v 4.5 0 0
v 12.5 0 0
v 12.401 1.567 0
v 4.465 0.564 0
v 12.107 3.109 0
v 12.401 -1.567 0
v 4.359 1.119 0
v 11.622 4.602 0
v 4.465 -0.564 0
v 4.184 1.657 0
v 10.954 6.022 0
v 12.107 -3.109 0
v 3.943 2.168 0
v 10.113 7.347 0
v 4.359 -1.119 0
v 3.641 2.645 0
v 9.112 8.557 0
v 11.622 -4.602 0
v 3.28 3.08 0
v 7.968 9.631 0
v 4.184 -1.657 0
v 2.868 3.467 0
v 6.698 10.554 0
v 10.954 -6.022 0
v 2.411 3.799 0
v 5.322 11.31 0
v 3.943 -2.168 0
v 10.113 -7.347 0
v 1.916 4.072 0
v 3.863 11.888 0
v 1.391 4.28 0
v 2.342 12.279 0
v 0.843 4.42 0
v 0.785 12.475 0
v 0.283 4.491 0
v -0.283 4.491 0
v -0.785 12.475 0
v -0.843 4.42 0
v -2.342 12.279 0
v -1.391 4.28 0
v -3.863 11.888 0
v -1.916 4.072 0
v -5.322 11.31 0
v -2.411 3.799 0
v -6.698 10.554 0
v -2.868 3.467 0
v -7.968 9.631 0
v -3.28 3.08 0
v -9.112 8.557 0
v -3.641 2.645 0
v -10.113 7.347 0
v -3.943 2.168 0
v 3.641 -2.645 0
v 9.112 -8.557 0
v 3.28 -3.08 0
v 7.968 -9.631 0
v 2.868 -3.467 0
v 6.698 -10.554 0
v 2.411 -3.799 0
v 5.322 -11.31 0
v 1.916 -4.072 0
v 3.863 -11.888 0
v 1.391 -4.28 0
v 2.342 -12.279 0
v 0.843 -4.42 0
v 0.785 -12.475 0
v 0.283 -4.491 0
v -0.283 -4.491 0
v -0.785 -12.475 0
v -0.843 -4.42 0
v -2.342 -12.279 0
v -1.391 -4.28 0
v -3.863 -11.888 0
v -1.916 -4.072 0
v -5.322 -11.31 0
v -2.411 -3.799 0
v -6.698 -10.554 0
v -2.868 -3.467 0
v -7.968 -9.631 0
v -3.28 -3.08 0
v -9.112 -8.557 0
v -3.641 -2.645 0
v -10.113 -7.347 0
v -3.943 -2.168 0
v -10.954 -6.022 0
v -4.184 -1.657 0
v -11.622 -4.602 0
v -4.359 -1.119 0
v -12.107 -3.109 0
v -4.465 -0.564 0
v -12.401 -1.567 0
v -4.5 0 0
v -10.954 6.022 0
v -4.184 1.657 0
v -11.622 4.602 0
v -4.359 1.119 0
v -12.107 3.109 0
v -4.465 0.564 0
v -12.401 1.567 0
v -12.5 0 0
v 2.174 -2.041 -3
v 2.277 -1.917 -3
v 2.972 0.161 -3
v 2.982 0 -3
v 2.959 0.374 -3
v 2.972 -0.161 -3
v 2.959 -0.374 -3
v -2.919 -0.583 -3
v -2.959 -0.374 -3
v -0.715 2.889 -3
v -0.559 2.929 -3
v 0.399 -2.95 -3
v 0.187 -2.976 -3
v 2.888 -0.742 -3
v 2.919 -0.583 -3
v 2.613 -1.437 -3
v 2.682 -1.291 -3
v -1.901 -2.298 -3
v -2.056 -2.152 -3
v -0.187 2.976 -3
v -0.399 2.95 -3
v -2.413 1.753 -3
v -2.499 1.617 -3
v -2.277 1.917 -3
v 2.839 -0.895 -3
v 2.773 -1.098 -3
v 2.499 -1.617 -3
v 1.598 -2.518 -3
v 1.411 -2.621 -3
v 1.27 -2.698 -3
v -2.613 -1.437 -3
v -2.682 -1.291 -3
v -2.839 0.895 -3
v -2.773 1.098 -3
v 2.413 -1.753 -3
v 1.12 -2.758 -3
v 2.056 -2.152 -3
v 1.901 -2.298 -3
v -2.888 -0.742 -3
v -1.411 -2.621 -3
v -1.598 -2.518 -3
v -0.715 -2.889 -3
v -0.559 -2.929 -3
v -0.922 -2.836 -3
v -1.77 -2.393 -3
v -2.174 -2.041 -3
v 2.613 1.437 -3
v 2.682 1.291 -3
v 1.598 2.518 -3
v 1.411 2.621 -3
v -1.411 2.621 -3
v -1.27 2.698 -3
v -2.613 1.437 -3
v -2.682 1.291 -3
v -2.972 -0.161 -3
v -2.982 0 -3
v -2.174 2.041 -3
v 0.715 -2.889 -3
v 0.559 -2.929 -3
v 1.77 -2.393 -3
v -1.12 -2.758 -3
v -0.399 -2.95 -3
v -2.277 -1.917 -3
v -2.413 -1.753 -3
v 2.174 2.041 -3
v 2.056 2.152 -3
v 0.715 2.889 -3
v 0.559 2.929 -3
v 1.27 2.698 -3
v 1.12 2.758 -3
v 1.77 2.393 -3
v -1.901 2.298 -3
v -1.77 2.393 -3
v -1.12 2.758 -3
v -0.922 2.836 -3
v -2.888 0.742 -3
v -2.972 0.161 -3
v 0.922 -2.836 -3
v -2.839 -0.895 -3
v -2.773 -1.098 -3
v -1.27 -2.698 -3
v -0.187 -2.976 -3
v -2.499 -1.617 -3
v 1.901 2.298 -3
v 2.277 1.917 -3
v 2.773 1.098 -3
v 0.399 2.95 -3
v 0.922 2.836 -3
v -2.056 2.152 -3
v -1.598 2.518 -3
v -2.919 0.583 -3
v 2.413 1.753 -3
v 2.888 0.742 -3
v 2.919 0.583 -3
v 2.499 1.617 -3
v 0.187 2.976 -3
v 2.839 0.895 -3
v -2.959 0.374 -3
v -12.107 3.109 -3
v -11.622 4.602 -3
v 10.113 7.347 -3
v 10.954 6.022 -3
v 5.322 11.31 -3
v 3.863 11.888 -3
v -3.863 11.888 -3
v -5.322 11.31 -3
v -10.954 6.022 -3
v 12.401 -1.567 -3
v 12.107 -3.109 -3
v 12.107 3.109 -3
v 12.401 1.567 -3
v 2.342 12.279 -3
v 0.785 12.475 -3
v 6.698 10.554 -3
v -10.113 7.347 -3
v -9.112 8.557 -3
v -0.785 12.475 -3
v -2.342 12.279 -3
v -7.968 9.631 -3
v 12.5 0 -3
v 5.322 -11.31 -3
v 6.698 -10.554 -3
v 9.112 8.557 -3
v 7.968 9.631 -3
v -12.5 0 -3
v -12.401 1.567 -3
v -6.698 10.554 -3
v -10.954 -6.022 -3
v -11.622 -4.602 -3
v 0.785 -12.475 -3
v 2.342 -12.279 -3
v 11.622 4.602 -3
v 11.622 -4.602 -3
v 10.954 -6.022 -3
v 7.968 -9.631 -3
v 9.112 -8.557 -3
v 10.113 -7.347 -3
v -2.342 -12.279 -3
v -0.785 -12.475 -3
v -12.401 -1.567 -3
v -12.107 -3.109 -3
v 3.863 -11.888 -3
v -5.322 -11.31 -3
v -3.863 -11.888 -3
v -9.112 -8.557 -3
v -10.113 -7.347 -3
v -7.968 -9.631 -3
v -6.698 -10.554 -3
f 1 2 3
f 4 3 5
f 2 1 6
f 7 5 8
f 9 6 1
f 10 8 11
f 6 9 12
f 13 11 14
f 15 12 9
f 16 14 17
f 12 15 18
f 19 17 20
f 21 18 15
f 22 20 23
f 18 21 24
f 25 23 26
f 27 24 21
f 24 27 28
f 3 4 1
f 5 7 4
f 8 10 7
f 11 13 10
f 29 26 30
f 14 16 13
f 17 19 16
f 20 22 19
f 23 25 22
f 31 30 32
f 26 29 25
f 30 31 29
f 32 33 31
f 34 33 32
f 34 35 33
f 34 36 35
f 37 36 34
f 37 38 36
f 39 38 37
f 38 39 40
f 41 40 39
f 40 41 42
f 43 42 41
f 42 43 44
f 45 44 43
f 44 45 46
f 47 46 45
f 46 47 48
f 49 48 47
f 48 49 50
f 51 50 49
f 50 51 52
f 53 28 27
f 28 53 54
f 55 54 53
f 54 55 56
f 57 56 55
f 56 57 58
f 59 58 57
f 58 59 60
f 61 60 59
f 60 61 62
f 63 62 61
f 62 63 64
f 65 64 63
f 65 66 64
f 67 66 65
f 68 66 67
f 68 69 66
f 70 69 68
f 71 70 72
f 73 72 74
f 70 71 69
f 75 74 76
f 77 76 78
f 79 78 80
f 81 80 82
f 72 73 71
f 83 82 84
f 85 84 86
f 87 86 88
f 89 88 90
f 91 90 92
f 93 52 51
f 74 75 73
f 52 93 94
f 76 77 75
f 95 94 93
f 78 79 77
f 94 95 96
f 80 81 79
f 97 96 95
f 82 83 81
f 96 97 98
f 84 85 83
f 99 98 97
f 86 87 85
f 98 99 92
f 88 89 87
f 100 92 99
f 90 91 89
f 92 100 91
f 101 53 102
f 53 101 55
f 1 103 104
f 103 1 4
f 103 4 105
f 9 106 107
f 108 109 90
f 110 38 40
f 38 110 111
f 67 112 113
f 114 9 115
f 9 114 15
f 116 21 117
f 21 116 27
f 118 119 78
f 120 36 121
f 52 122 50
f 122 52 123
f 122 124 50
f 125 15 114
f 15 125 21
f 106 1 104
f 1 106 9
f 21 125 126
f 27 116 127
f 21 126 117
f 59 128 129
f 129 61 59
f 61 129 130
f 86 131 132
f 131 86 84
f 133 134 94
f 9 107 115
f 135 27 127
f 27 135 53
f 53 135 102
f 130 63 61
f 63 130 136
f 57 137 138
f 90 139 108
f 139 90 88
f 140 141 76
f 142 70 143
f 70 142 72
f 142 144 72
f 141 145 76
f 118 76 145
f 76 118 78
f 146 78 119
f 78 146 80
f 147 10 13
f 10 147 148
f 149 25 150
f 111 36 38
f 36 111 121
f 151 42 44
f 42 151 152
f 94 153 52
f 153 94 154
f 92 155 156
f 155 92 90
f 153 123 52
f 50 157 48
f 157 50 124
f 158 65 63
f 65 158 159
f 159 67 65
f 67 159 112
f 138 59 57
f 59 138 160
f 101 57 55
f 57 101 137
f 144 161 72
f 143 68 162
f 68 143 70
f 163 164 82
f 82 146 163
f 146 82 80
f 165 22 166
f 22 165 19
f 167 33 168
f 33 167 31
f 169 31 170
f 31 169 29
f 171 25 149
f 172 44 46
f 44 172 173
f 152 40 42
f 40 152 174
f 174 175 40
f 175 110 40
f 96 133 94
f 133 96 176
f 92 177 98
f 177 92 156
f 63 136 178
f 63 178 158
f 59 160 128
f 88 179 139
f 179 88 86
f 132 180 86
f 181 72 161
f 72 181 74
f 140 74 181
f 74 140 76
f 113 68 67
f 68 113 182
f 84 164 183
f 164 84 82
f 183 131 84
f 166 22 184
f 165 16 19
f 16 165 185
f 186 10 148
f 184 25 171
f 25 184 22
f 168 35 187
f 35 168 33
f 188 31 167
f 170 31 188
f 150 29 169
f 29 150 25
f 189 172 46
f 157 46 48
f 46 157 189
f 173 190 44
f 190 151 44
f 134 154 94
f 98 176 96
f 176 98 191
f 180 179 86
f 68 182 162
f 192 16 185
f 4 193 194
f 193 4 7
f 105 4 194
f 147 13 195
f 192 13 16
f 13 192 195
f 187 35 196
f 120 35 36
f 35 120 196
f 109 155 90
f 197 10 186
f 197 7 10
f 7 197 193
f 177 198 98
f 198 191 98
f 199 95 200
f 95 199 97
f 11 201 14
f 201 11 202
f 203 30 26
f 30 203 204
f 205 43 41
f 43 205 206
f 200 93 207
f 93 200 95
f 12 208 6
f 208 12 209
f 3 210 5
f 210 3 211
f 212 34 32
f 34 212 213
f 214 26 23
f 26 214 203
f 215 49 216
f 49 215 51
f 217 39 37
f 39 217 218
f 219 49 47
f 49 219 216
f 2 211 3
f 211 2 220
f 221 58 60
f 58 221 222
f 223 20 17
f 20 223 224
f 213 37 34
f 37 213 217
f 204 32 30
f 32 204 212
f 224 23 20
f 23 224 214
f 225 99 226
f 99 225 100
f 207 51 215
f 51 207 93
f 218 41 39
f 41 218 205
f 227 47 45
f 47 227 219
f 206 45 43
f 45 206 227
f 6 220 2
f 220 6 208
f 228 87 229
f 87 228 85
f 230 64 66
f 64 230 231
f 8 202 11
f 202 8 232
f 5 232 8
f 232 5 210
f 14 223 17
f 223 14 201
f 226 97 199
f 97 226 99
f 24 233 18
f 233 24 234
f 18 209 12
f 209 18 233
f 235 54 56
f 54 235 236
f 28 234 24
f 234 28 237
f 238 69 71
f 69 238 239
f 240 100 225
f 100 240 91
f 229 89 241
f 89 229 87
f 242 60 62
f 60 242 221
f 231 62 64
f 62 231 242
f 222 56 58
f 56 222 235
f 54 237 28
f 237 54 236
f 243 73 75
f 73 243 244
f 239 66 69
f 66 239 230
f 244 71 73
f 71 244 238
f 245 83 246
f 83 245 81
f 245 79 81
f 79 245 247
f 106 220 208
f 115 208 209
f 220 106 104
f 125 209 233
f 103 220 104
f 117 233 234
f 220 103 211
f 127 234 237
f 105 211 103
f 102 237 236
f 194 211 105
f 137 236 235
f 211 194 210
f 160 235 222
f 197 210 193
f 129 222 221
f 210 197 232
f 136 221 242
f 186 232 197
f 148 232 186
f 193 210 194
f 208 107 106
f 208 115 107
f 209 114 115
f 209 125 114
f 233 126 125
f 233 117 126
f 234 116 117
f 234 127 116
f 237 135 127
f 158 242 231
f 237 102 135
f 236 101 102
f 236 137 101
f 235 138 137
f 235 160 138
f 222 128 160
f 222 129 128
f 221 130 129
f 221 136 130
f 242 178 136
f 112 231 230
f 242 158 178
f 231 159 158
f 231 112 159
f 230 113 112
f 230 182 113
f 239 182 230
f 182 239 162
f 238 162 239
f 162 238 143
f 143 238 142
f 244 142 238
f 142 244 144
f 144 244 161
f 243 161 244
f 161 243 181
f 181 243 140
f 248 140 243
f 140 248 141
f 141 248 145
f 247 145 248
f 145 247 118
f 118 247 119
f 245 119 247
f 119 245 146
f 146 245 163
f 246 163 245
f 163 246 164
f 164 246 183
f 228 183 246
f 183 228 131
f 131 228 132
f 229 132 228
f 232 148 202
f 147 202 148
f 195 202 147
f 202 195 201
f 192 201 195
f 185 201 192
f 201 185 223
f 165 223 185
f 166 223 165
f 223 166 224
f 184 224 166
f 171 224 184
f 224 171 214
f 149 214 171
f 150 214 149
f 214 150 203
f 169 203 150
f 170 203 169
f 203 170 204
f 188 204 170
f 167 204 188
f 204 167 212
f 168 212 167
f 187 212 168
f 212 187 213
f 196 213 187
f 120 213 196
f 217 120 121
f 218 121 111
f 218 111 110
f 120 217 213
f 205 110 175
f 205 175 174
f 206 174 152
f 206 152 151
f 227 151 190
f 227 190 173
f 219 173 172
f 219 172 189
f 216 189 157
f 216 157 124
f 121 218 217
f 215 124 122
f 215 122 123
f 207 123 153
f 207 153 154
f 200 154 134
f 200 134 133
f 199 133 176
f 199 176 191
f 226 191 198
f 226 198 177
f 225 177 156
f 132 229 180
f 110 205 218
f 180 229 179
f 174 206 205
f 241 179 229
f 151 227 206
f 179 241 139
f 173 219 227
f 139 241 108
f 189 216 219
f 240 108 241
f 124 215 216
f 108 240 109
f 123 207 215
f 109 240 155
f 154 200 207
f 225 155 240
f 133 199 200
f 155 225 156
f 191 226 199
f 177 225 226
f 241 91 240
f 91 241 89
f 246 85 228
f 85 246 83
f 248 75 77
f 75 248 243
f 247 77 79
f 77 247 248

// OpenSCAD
$fn = 50;

difference() {
	union() {
		translate(v = [0, 0, -3.0]) {
			cylinder(h = 3, r = 12.5);
		}
	}
	union() {
		translate(v = [0, 0, 0]) {
			rotate(a = [0, 0, 0]) {
				difference() {
					union() {
						translate(v = [0, 0, -6.0]) {
							cylinder(h = 6, r = 2.25);
						}
						translate(v = [0, 0, -4.2]) {
							cylinder(h = 4.2, r1 = 2.375, r2 = 4.5);
						}
						translate(v = [0, 0, -6.0]) {
							cylinder(h = 6, r = 2.375);
						}
						translate(v = [0, 0, -6.0]) {
							cylinder(h = 6, r = 2.25);
						}
					}
					union();
				}
			}
		}
	}
}
